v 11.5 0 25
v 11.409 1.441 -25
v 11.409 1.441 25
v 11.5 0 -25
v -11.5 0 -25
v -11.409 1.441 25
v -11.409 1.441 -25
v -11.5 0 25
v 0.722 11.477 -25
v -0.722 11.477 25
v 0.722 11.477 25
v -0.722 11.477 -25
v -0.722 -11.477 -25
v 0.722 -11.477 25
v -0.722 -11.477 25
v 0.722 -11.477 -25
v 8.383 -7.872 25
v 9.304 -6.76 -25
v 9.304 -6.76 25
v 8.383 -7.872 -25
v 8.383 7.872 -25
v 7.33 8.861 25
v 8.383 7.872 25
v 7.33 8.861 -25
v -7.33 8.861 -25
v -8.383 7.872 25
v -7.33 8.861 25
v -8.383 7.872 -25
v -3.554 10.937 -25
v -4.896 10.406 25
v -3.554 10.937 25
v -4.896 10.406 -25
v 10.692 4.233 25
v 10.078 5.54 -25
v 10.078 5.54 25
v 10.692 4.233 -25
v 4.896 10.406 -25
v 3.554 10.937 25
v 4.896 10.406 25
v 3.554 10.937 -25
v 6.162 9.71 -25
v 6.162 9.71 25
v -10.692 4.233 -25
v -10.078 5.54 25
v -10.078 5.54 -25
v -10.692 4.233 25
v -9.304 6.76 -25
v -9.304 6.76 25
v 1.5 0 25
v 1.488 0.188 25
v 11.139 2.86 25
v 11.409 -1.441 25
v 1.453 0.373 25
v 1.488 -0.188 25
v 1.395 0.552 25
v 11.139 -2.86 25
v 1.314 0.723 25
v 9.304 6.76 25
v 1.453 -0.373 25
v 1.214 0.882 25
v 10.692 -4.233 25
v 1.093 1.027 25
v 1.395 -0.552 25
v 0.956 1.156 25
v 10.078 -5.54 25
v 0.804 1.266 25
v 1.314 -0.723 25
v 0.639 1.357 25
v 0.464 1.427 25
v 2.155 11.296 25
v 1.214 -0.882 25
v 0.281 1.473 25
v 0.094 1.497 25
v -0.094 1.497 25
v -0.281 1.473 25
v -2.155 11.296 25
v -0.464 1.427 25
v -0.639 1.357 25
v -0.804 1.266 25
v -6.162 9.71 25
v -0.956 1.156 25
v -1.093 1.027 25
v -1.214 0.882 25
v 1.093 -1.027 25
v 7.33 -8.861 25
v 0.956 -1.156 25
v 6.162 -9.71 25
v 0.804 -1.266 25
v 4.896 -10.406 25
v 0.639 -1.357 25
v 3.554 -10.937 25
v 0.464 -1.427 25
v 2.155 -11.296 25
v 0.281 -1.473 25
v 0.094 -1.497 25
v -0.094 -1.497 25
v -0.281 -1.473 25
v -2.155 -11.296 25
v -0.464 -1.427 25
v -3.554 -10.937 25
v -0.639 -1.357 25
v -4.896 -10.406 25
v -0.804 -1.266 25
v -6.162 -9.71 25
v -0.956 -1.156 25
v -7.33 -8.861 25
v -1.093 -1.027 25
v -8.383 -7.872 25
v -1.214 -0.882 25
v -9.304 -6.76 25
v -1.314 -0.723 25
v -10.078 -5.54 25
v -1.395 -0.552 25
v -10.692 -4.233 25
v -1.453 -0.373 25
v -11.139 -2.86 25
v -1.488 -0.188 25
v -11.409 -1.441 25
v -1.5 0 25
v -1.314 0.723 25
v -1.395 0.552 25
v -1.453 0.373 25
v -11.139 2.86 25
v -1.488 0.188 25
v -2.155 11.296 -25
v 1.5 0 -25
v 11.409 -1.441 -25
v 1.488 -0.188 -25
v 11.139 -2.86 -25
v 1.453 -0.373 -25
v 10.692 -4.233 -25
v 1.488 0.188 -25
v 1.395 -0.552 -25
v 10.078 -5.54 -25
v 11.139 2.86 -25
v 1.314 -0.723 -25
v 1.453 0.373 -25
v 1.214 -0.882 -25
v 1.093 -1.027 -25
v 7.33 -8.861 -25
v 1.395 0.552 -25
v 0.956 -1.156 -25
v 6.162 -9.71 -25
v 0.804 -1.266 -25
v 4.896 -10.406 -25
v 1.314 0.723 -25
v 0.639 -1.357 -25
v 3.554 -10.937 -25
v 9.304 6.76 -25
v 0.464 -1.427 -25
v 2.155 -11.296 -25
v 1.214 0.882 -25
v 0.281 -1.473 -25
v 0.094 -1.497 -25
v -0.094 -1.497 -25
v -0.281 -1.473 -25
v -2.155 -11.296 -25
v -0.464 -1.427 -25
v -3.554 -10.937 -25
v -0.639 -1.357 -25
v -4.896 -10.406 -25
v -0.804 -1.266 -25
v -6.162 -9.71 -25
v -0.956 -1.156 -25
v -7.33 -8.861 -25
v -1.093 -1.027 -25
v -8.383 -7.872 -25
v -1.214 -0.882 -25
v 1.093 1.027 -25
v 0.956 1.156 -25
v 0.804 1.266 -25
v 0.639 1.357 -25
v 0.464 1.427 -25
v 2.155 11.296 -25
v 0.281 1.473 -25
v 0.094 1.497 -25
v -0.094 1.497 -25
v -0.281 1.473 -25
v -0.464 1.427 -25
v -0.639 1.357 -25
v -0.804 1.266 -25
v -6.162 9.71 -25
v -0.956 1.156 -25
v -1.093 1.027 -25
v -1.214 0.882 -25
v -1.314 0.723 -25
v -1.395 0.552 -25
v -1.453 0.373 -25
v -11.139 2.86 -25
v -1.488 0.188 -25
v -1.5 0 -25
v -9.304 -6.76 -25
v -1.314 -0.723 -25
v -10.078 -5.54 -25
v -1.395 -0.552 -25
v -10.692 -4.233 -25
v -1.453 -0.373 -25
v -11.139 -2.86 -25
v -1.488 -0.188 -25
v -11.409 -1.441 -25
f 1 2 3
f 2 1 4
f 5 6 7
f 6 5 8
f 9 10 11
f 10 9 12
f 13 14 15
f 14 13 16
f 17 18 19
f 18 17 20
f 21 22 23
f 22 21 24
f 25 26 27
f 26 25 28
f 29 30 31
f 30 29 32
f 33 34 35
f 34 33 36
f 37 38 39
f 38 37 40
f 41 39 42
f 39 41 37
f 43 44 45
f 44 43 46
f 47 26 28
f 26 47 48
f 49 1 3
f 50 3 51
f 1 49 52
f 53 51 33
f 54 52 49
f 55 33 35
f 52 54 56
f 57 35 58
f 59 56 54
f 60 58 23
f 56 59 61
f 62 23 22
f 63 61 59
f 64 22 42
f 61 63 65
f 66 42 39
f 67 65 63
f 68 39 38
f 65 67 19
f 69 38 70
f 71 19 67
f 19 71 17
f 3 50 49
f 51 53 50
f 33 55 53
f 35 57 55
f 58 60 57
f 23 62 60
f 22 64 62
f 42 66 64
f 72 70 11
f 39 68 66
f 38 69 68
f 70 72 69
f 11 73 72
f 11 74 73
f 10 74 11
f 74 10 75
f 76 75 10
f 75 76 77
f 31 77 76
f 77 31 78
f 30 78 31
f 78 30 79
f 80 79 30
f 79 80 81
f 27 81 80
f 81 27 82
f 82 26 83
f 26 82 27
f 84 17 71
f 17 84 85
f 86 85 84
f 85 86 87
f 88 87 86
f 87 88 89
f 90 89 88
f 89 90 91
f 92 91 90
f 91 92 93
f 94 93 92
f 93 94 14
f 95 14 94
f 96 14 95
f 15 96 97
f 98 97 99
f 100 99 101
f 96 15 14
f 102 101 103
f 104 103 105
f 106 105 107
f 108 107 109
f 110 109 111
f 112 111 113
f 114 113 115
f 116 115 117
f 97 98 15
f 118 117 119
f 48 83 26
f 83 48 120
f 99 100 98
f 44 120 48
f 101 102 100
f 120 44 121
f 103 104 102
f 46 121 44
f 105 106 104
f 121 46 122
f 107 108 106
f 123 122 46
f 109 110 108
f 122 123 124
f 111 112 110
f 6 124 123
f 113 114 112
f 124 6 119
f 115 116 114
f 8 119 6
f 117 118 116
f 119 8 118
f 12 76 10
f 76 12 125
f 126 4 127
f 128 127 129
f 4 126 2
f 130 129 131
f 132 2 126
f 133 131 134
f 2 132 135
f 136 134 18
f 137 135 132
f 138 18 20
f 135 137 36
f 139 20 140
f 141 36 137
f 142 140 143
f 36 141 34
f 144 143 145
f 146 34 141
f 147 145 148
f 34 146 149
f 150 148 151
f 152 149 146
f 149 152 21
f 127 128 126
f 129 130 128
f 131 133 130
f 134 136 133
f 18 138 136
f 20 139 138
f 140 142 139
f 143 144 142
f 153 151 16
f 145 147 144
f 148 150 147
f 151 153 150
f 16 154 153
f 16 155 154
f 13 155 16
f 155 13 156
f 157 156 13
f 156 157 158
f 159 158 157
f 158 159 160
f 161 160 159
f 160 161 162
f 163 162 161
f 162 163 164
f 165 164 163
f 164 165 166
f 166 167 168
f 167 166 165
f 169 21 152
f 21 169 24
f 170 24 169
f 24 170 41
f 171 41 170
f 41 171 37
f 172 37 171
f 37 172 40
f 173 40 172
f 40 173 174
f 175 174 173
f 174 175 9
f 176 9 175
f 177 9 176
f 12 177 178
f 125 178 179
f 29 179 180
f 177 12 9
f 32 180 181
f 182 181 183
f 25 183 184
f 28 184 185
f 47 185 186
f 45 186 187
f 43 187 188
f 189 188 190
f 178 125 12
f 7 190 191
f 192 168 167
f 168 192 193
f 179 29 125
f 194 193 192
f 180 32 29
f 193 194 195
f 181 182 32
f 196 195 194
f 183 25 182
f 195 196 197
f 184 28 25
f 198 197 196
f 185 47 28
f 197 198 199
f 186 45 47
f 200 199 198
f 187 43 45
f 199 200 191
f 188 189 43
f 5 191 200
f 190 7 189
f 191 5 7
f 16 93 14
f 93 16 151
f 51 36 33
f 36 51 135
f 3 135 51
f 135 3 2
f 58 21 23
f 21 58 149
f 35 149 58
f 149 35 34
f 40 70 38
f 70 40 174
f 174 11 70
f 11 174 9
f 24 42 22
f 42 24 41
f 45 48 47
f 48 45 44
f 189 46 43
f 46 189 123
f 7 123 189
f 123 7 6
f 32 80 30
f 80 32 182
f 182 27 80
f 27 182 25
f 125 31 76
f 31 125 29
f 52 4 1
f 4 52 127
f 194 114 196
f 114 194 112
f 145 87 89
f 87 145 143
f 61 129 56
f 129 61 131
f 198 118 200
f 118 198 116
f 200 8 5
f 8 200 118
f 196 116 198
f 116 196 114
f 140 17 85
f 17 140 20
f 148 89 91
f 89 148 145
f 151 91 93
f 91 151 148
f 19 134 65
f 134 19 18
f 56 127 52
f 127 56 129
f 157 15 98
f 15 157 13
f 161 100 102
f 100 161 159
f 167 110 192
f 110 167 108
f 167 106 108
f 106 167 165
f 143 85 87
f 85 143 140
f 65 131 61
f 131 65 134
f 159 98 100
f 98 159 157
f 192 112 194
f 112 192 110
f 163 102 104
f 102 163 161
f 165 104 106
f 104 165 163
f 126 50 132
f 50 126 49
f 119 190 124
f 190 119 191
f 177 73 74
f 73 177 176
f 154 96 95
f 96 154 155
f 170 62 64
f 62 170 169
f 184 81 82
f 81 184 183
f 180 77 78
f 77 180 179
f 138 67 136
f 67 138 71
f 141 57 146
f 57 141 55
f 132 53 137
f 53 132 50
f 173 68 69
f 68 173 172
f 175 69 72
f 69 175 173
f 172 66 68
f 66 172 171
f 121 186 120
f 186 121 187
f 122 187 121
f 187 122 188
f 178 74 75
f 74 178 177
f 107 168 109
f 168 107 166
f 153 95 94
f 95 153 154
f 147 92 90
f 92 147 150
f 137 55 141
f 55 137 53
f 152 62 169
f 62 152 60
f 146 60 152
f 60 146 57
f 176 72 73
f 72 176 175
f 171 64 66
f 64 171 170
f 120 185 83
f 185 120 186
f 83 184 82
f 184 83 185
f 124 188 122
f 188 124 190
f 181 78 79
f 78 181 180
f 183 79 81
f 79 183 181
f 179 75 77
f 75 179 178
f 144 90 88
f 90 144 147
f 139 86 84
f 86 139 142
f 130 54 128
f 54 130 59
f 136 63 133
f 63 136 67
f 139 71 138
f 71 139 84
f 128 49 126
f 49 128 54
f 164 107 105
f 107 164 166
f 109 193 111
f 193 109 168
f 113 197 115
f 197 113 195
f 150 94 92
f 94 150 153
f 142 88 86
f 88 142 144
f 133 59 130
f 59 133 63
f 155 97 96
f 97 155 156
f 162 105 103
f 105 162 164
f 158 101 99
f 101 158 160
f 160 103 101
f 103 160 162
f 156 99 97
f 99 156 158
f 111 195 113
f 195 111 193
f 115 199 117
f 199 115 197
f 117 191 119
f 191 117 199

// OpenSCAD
$fn = 50;


difference() {
	union() {
		translate(v = [0, 0, -25.0000000000]) {
			cylinder(h = 50, r = 11.5000000000);
		}
	}
	union() {
		translate(v = [0, 0, -100.0000000000]) {
			cylinder(h = 200, r = 1.5000000000);
		}
	}
}
